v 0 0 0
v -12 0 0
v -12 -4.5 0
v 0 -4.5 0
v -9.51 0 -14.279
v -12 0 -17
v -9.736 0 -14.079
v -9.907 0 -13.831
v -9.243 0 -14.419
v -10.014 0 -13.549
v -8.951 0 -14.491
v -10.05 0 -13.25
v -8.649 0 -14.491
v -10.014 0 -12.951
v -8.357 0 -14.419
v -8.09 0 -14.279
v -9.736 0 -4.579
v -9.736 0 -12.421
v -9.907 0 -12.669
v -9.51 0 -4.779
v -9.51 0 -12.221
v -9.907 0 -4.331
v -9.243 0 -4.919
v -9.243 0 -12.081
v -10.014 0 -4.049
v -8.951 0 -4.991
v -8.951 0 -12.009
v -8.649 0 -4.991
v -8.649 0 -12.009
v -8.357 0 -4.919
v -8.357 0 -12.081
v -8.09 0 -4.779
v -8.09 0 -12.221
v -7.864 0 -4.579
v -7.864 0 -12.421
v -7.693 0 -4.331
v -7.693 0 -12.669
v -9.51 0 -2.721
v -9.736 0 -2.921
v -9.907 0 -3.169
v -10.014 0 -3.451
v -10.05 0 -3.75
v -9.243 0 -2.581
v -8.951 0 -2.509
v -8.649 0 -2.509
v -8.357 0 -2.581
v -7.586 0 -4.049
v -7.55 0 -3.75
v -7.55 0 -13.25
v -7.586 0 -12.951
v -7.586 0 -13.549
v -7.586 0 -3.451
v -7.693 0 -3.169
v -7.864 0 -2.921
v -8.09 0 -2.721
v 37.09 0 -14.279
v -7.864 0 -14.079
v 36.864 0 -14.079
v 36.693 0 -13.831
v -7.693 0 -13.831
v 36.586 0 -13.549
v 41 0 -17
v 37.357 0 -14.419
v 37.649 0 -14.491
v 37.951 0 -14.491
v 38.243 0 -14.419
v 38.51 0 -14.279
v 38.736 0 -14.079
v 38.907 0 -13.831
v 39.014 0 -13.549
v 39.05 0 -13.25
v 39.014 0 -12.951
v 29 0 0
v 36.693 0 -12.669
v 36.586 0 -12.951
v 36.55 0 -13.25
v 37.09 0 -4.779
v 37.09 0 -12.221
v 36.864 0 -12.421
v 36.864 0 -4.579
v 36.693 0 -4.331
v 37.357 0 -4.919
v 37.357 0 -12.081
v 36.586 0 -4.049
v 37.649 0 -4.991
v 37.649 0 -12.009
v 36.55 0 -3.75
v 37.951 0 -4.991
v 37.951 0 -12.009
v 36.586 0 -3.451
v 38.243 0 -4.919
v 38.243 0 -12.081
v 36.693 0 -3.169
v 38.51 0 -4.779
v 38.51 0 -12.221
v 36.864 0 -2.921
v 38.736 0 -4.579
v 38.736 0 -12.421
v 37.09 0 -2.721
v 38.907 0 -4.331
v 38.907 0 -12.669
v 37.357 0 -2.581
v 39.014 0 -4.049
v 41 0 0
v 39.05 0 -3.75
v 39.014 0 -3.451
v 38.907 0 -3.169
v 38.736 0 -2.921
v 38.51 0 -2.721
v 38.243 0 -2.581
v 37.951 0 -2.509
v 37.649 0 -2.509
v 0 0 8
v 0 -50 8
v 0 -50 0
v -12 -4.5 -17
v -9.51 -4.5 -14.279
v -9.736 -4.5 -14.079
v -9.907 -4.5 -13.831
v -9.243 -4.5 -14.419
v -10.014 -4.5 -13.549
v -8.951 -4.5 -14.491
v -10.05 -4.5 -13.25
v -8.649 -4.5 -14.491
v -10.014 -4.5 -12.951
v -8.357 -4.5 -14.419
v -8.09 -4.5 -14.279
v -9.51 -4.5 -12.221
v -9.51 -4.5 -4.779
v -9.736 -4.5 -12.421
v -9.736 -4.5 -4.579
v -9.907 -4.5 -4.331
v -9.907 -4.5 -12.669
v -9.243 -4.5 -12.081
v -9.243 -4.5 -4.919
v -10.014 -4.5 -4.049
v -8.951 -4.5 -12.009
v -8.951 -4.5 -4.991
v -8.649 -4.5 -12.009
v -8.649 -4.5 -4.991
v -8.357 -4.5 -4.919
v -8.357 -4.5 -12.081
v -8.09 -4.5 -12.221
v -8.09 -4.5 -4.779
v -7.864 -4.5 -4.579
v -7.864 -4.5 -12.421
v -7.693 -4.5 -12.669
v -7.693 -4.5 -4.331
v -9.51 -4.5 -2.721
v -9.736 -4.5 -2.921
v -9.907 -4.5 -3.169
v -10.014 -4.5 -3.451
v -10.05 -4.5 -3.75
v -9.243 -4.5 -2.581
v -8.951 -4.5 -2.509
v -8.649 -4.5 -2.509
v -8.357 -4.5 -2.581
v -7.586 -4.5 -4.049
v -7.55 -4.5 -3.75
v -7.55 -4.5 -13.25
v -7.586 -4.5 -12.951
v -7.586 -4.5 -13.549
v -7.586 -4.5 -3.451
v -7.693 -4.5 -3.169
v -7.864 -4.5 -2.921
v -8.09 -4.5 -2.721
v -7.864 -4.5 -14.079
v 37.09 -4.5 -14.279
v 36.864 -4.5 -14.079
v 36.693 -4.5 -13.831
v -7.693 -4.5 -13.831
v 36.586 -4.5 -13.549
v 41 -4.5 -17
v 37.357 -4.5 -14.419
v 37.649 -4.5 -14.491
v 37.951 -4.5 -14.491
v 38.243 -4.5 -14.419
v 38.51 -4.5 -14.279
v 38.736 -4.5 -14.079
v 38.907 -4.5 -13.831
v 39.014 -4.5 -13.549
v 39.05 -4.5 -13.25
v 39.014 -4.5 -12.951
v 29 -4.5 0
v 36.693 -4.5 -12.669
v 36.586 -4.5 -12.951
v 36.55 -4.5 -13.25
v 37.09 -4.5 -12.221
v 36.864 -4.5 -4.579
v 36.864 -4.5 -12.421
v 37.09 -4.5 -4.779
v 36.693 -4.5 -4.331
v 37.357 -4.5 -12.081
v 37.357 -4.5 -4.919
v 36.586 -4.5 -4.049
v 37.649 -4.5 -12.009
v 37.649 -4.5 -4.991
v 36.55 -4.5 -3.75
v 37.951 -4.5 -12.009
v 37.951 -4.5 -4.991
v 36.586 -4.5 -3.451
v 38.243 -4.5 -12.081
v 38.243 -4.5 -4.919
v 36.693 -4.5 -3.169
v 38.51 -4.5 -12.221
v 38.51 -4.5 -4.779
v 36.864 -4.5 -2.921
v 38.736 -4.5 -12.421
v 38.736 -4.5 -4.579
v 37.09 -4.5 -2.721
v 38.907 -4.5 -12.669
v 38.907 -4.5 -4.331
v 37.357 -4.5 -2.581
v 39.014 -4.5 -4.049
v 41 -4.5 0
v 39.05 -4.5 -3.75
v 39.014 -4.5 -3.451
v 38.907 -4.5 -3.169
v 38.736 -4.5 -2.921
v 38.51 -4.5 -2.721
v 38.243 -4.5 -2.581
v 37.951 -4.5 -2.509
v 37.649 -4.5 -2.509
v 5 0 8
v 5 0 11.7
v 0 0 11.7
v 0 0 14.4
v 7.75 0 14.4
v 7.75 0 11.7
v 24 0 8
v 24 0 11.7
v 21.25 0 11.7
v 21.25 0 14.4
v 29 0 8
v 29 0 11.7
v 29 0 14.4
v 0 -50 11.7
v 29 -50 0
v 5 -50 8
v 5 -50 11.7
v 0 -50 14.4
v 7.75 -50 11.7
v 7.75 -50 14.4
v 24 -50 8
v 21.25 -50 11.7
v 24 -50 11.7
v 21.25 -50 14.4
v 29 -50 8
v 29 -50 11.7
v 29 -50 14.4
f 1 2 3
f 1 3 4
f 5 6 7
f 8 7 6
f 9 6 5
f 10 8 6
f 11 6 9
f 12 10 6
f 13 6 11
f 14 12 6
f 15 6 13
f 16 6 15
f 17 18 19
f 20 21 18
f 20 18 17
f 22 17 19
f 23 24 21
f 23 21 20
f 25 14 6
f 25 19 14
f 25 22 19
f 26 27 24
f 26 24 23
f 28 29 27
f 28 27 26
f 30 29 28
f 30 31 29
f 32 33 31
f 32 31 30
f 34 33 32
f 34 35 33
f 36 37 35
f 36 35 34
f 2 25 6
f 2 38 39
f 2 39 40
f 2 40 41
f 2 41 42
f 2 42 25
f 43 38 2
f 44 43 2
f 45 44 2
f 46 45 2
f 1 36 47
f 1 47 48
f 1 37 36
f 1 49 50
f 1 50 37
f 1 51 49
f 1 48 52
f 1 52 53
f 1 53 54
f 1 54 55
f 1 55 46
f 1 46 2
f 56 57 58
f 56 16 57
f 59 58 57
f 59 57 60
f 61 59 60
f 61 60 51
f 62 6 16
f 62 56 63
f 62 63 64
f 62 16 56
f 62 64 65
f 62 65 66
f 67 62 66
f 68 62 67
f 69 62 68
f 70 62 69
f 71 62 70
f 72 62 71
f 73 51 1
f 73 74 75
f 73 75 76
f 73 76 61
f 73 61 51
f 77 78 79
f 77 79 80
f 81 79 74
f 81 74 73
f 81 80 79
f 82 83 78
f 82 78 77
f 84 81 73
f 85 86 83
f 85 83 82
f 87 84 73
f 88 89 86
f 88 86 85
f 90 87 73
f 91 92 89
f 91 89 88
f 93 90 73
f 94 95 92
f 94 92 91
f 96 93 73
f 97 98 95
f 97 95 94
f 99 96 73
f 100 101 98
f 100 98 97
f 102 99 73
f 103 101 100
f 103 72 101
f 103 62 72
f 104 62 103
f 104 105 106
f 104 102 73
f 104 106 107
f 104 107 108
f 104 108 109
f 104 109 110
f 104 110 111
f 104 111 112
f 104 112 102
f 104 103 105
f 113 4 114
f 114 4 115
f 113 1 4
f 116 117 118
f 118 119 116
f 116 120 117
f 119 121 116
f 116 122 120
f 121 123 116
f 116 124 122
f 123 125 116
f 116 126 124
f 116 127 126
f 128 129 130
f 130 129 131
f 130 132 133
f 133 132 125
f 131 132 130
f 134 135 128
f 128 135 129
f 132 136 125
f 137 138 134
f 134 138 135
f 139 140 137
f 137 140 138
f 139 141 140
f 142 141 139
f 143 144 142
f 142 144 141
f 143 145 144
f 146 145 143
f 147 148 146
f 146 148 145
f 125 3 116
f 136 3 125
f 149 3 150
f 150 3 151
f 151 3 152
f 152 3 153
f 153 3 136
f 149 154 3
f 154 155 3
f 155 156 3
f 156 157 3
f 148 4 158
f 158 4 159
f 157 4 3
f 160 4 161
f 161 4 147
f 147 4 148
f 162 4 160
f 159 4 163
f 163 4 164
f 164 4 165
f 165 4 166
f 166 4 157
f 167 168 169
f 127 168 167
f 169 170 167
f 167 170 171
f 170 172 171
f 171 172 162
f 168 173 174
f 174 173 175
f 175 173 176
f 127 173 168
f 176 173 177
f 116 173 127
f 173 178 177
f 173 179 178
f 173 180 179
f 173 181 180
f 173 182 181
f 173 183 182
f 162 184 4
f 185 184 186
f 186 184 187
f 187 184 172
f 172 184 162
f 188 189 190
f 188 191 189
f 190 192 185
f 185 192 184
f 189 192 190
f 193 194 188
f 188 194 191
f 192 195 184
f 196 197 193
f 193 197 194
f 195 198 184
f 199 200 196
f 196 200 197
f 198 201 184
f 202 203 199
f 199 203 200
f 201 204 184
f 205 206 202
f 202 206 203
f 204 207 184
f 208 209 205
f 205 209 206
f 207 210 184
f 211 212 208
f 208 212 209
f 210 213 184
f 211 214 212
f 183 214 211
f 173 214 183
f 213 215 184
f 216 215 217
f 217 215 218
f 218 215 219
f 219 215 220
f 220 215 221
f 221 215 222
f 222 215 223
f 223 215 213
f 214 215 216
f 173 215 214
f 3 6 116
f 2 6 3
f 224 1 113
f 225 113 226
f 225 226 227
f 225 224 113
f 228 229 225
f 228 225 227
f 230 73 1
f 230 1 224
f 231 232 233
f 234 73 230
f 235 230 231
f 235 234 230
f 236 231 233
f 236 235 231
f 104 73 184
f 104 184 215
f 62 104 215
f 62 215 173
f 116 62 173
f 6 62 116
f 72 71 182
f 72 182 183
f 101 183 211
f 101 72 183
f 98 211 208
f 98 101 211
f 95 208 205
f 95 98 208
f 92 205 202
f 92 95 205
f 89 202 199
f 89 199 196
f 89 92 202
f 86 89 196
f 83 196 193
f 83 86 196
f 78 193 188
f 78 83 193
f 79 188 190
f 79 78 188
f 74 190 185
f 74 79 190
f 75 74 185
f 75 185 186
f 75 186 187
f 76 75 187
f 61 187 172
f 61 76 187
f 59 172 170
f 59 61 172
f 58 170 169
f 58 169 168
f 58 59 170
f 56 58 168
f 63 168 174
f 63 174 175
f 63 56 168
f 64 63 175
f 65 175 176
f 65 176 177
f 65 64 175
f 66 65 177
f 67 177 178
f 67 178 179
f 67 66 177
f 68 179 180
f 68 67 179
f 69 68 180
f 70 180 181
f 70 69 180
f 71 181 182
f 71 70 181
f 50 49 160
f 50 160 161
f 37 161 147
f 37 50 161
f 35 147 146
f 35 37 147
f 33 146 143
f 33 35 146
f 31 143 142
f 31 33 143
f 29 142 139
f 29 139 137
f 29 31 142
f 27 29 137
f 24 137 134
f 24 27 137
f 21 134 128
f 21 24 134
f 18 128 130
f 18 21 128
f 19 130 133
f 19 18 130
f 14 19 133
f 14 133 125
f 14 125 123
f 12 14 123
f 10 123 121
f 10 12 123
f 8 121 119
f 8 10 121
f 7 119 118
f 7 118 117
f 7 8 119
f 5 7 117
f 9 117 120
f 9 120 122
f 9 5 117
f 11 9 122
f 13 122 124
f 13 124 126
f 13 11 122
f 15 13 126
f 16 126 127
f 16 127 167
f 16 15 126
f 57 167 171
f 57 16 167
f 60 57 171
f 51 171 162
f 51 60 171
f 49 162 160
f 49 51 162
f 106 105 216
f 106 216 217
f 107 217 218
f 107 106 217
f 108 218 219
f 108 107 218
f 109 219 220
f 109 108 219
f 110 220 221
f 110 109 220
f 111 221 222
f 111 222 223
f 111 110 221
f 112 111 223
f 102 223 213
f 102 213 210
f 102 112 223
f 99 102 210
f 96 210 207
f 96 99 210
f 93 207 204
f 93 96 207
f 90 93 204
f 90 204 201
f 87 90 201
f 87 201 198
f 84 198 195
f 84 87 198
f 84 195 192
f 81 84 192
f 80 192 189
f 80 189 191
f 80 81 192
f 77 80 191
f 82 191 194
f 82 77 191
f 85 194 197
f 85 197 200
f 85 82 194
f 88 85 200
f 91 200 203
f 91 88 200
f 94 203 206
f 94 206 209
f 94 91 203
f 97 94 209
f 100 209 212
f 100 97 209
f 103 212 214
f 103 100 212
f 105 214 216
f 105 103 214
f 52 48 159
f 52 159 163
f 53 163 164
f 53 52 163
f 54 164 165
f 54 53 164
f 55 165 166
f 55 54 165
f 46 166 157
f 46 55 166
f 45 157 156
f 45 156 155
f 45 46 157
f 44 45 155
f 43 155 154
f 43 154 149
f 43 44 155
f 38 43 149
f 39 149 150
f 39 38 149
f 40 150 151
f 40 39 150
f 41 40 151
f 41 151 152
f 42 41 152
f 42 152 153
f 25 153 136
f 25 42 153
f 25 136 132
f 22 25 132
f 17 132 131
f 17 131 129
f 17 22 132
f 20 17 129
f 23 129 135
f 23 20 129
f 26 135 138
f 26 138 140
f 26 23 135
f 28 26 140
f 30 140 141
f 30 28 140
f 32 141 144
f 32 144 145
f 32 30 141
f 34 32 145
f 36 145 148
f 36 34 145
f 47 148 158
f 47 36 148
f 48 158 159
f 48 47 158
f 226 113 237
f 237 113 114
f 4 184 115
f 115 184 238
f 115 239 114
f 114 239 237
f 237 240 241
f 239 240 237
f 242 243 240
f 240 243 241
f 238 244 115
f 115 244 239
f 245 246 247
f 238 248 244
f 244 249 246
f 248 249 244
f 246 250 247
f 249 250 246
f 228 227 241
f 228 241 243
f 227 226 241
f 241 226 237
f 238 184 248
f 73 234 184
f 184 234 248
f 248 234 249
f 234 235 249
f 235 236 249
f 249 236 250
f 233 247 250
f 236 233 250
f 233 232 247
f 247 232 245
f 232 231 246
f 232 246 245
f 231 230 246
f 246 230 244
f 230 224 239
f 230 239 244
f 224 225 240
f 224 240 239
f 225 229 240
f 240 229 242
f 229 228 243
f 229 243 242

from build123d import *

# Parameters (mm, degrees)
SKETCH001_W      = 53
SKETCH001_H      = 17
SKETCH001_R      = 1.25
EXTRUDE002_DEPTH = 4.5
EXTRUDE001_DEPTH = 50
EXTRUDE_DEPTH    = 50
EXTRUDE003_DEPTH = 4.5


with BuildPart() as extrude002:
    # Sketch001 → Extrude002 (new body)
    with BuildSketch(Plane.XZ):
        with Locations((14.5, -8.5)):
            Rectangle(SKETCH001_W, SKETCH001_H)
        with Locations((-8.8, -3.75)):
            Circle(SKETCH001_R, mode=Mode.SUBTRACT)
        with Locations((-8.8, -13.25)):
            Circle(SKETCH001_R, mode=Mode.SUBTRACT)
        with Locations((37.8, -13.25)):
            Circle(SKETCH001_R, mode=Mode.SUBTRACT)
        with Locations((37.8, -3.75)):
            Circle(SKETCH001_R, mode=Mode.SUBTRACT)
    extrude(amount=EXTRUDE002_DEPTH)


with BuildPart() as extrude001:
    # Sketch → Extrude001 (new body)
    with BuildSketch(Plane.XZ):
        Polygon((0, 0), (29, 0), (29, 8), (29, 11.7), (29, 14.4), (21.25, 14.4), (21.25, 11.7), (24, 11.7), (24, 8), (5, 8), (5, 11.7), (7.75, 11.7), (7.75, 14.4), (0, 14.4), (0, 11.7), (0, 8), align=None)
    extrude(amount=EXTRUDE001_DEPTH)


with BuildPart() as extrude_body:
    # Sketch → Extrude (new body)
    with BuildSketch(Plane.XZ):
        Polygon((0, 0), (29, 0), (29, 8), (29, 11.7), (29, 14.4), (21.25, 14.4), (21.25, 11.7), (24, 11.7), (24, 8), (5, 8), (5, 11.7), (7.75, 11.7), (7.75, 14.4), (0, 14.4), (0, 11.7), (0, 8), align=None)
    extrude(amount=EXTRUDE_DEPTH)


with BuildPart() as fusion:
    # Sketch001 → Extrude003 (new body)
    with BuildSketch(Plane.XZ):
        with Locations((14.5, -8.5)):
            Rectangle(SKETCH001_W, SKETCH001_H)
        with Locations((-8.8, -3.75)):
            Circle(SKETCH001_R, mode=Mode.SUBTRACT)
        with Locations((-8.8, -13.25)):
            Circle(SKETCH001_R, mode=Mode.SUBTRACT)
        with Locations((37.8, -13.25)):
            Circle(SKETCH001_R, mode=Mode.SUBTRACT)
        with Locations((37.8, -3.75)):
            Circle(SKETCH001_R, mode=Mode.SUBTRACT)
    extrude(amount=EXTRUDE003_DEPTH)

    # Fusion: union Extrude002, Extrude001, Extrude body
    add(extrude002.part)
    add(extrude001.part)
    add(extrude_body.part)


solid = fusion.part
